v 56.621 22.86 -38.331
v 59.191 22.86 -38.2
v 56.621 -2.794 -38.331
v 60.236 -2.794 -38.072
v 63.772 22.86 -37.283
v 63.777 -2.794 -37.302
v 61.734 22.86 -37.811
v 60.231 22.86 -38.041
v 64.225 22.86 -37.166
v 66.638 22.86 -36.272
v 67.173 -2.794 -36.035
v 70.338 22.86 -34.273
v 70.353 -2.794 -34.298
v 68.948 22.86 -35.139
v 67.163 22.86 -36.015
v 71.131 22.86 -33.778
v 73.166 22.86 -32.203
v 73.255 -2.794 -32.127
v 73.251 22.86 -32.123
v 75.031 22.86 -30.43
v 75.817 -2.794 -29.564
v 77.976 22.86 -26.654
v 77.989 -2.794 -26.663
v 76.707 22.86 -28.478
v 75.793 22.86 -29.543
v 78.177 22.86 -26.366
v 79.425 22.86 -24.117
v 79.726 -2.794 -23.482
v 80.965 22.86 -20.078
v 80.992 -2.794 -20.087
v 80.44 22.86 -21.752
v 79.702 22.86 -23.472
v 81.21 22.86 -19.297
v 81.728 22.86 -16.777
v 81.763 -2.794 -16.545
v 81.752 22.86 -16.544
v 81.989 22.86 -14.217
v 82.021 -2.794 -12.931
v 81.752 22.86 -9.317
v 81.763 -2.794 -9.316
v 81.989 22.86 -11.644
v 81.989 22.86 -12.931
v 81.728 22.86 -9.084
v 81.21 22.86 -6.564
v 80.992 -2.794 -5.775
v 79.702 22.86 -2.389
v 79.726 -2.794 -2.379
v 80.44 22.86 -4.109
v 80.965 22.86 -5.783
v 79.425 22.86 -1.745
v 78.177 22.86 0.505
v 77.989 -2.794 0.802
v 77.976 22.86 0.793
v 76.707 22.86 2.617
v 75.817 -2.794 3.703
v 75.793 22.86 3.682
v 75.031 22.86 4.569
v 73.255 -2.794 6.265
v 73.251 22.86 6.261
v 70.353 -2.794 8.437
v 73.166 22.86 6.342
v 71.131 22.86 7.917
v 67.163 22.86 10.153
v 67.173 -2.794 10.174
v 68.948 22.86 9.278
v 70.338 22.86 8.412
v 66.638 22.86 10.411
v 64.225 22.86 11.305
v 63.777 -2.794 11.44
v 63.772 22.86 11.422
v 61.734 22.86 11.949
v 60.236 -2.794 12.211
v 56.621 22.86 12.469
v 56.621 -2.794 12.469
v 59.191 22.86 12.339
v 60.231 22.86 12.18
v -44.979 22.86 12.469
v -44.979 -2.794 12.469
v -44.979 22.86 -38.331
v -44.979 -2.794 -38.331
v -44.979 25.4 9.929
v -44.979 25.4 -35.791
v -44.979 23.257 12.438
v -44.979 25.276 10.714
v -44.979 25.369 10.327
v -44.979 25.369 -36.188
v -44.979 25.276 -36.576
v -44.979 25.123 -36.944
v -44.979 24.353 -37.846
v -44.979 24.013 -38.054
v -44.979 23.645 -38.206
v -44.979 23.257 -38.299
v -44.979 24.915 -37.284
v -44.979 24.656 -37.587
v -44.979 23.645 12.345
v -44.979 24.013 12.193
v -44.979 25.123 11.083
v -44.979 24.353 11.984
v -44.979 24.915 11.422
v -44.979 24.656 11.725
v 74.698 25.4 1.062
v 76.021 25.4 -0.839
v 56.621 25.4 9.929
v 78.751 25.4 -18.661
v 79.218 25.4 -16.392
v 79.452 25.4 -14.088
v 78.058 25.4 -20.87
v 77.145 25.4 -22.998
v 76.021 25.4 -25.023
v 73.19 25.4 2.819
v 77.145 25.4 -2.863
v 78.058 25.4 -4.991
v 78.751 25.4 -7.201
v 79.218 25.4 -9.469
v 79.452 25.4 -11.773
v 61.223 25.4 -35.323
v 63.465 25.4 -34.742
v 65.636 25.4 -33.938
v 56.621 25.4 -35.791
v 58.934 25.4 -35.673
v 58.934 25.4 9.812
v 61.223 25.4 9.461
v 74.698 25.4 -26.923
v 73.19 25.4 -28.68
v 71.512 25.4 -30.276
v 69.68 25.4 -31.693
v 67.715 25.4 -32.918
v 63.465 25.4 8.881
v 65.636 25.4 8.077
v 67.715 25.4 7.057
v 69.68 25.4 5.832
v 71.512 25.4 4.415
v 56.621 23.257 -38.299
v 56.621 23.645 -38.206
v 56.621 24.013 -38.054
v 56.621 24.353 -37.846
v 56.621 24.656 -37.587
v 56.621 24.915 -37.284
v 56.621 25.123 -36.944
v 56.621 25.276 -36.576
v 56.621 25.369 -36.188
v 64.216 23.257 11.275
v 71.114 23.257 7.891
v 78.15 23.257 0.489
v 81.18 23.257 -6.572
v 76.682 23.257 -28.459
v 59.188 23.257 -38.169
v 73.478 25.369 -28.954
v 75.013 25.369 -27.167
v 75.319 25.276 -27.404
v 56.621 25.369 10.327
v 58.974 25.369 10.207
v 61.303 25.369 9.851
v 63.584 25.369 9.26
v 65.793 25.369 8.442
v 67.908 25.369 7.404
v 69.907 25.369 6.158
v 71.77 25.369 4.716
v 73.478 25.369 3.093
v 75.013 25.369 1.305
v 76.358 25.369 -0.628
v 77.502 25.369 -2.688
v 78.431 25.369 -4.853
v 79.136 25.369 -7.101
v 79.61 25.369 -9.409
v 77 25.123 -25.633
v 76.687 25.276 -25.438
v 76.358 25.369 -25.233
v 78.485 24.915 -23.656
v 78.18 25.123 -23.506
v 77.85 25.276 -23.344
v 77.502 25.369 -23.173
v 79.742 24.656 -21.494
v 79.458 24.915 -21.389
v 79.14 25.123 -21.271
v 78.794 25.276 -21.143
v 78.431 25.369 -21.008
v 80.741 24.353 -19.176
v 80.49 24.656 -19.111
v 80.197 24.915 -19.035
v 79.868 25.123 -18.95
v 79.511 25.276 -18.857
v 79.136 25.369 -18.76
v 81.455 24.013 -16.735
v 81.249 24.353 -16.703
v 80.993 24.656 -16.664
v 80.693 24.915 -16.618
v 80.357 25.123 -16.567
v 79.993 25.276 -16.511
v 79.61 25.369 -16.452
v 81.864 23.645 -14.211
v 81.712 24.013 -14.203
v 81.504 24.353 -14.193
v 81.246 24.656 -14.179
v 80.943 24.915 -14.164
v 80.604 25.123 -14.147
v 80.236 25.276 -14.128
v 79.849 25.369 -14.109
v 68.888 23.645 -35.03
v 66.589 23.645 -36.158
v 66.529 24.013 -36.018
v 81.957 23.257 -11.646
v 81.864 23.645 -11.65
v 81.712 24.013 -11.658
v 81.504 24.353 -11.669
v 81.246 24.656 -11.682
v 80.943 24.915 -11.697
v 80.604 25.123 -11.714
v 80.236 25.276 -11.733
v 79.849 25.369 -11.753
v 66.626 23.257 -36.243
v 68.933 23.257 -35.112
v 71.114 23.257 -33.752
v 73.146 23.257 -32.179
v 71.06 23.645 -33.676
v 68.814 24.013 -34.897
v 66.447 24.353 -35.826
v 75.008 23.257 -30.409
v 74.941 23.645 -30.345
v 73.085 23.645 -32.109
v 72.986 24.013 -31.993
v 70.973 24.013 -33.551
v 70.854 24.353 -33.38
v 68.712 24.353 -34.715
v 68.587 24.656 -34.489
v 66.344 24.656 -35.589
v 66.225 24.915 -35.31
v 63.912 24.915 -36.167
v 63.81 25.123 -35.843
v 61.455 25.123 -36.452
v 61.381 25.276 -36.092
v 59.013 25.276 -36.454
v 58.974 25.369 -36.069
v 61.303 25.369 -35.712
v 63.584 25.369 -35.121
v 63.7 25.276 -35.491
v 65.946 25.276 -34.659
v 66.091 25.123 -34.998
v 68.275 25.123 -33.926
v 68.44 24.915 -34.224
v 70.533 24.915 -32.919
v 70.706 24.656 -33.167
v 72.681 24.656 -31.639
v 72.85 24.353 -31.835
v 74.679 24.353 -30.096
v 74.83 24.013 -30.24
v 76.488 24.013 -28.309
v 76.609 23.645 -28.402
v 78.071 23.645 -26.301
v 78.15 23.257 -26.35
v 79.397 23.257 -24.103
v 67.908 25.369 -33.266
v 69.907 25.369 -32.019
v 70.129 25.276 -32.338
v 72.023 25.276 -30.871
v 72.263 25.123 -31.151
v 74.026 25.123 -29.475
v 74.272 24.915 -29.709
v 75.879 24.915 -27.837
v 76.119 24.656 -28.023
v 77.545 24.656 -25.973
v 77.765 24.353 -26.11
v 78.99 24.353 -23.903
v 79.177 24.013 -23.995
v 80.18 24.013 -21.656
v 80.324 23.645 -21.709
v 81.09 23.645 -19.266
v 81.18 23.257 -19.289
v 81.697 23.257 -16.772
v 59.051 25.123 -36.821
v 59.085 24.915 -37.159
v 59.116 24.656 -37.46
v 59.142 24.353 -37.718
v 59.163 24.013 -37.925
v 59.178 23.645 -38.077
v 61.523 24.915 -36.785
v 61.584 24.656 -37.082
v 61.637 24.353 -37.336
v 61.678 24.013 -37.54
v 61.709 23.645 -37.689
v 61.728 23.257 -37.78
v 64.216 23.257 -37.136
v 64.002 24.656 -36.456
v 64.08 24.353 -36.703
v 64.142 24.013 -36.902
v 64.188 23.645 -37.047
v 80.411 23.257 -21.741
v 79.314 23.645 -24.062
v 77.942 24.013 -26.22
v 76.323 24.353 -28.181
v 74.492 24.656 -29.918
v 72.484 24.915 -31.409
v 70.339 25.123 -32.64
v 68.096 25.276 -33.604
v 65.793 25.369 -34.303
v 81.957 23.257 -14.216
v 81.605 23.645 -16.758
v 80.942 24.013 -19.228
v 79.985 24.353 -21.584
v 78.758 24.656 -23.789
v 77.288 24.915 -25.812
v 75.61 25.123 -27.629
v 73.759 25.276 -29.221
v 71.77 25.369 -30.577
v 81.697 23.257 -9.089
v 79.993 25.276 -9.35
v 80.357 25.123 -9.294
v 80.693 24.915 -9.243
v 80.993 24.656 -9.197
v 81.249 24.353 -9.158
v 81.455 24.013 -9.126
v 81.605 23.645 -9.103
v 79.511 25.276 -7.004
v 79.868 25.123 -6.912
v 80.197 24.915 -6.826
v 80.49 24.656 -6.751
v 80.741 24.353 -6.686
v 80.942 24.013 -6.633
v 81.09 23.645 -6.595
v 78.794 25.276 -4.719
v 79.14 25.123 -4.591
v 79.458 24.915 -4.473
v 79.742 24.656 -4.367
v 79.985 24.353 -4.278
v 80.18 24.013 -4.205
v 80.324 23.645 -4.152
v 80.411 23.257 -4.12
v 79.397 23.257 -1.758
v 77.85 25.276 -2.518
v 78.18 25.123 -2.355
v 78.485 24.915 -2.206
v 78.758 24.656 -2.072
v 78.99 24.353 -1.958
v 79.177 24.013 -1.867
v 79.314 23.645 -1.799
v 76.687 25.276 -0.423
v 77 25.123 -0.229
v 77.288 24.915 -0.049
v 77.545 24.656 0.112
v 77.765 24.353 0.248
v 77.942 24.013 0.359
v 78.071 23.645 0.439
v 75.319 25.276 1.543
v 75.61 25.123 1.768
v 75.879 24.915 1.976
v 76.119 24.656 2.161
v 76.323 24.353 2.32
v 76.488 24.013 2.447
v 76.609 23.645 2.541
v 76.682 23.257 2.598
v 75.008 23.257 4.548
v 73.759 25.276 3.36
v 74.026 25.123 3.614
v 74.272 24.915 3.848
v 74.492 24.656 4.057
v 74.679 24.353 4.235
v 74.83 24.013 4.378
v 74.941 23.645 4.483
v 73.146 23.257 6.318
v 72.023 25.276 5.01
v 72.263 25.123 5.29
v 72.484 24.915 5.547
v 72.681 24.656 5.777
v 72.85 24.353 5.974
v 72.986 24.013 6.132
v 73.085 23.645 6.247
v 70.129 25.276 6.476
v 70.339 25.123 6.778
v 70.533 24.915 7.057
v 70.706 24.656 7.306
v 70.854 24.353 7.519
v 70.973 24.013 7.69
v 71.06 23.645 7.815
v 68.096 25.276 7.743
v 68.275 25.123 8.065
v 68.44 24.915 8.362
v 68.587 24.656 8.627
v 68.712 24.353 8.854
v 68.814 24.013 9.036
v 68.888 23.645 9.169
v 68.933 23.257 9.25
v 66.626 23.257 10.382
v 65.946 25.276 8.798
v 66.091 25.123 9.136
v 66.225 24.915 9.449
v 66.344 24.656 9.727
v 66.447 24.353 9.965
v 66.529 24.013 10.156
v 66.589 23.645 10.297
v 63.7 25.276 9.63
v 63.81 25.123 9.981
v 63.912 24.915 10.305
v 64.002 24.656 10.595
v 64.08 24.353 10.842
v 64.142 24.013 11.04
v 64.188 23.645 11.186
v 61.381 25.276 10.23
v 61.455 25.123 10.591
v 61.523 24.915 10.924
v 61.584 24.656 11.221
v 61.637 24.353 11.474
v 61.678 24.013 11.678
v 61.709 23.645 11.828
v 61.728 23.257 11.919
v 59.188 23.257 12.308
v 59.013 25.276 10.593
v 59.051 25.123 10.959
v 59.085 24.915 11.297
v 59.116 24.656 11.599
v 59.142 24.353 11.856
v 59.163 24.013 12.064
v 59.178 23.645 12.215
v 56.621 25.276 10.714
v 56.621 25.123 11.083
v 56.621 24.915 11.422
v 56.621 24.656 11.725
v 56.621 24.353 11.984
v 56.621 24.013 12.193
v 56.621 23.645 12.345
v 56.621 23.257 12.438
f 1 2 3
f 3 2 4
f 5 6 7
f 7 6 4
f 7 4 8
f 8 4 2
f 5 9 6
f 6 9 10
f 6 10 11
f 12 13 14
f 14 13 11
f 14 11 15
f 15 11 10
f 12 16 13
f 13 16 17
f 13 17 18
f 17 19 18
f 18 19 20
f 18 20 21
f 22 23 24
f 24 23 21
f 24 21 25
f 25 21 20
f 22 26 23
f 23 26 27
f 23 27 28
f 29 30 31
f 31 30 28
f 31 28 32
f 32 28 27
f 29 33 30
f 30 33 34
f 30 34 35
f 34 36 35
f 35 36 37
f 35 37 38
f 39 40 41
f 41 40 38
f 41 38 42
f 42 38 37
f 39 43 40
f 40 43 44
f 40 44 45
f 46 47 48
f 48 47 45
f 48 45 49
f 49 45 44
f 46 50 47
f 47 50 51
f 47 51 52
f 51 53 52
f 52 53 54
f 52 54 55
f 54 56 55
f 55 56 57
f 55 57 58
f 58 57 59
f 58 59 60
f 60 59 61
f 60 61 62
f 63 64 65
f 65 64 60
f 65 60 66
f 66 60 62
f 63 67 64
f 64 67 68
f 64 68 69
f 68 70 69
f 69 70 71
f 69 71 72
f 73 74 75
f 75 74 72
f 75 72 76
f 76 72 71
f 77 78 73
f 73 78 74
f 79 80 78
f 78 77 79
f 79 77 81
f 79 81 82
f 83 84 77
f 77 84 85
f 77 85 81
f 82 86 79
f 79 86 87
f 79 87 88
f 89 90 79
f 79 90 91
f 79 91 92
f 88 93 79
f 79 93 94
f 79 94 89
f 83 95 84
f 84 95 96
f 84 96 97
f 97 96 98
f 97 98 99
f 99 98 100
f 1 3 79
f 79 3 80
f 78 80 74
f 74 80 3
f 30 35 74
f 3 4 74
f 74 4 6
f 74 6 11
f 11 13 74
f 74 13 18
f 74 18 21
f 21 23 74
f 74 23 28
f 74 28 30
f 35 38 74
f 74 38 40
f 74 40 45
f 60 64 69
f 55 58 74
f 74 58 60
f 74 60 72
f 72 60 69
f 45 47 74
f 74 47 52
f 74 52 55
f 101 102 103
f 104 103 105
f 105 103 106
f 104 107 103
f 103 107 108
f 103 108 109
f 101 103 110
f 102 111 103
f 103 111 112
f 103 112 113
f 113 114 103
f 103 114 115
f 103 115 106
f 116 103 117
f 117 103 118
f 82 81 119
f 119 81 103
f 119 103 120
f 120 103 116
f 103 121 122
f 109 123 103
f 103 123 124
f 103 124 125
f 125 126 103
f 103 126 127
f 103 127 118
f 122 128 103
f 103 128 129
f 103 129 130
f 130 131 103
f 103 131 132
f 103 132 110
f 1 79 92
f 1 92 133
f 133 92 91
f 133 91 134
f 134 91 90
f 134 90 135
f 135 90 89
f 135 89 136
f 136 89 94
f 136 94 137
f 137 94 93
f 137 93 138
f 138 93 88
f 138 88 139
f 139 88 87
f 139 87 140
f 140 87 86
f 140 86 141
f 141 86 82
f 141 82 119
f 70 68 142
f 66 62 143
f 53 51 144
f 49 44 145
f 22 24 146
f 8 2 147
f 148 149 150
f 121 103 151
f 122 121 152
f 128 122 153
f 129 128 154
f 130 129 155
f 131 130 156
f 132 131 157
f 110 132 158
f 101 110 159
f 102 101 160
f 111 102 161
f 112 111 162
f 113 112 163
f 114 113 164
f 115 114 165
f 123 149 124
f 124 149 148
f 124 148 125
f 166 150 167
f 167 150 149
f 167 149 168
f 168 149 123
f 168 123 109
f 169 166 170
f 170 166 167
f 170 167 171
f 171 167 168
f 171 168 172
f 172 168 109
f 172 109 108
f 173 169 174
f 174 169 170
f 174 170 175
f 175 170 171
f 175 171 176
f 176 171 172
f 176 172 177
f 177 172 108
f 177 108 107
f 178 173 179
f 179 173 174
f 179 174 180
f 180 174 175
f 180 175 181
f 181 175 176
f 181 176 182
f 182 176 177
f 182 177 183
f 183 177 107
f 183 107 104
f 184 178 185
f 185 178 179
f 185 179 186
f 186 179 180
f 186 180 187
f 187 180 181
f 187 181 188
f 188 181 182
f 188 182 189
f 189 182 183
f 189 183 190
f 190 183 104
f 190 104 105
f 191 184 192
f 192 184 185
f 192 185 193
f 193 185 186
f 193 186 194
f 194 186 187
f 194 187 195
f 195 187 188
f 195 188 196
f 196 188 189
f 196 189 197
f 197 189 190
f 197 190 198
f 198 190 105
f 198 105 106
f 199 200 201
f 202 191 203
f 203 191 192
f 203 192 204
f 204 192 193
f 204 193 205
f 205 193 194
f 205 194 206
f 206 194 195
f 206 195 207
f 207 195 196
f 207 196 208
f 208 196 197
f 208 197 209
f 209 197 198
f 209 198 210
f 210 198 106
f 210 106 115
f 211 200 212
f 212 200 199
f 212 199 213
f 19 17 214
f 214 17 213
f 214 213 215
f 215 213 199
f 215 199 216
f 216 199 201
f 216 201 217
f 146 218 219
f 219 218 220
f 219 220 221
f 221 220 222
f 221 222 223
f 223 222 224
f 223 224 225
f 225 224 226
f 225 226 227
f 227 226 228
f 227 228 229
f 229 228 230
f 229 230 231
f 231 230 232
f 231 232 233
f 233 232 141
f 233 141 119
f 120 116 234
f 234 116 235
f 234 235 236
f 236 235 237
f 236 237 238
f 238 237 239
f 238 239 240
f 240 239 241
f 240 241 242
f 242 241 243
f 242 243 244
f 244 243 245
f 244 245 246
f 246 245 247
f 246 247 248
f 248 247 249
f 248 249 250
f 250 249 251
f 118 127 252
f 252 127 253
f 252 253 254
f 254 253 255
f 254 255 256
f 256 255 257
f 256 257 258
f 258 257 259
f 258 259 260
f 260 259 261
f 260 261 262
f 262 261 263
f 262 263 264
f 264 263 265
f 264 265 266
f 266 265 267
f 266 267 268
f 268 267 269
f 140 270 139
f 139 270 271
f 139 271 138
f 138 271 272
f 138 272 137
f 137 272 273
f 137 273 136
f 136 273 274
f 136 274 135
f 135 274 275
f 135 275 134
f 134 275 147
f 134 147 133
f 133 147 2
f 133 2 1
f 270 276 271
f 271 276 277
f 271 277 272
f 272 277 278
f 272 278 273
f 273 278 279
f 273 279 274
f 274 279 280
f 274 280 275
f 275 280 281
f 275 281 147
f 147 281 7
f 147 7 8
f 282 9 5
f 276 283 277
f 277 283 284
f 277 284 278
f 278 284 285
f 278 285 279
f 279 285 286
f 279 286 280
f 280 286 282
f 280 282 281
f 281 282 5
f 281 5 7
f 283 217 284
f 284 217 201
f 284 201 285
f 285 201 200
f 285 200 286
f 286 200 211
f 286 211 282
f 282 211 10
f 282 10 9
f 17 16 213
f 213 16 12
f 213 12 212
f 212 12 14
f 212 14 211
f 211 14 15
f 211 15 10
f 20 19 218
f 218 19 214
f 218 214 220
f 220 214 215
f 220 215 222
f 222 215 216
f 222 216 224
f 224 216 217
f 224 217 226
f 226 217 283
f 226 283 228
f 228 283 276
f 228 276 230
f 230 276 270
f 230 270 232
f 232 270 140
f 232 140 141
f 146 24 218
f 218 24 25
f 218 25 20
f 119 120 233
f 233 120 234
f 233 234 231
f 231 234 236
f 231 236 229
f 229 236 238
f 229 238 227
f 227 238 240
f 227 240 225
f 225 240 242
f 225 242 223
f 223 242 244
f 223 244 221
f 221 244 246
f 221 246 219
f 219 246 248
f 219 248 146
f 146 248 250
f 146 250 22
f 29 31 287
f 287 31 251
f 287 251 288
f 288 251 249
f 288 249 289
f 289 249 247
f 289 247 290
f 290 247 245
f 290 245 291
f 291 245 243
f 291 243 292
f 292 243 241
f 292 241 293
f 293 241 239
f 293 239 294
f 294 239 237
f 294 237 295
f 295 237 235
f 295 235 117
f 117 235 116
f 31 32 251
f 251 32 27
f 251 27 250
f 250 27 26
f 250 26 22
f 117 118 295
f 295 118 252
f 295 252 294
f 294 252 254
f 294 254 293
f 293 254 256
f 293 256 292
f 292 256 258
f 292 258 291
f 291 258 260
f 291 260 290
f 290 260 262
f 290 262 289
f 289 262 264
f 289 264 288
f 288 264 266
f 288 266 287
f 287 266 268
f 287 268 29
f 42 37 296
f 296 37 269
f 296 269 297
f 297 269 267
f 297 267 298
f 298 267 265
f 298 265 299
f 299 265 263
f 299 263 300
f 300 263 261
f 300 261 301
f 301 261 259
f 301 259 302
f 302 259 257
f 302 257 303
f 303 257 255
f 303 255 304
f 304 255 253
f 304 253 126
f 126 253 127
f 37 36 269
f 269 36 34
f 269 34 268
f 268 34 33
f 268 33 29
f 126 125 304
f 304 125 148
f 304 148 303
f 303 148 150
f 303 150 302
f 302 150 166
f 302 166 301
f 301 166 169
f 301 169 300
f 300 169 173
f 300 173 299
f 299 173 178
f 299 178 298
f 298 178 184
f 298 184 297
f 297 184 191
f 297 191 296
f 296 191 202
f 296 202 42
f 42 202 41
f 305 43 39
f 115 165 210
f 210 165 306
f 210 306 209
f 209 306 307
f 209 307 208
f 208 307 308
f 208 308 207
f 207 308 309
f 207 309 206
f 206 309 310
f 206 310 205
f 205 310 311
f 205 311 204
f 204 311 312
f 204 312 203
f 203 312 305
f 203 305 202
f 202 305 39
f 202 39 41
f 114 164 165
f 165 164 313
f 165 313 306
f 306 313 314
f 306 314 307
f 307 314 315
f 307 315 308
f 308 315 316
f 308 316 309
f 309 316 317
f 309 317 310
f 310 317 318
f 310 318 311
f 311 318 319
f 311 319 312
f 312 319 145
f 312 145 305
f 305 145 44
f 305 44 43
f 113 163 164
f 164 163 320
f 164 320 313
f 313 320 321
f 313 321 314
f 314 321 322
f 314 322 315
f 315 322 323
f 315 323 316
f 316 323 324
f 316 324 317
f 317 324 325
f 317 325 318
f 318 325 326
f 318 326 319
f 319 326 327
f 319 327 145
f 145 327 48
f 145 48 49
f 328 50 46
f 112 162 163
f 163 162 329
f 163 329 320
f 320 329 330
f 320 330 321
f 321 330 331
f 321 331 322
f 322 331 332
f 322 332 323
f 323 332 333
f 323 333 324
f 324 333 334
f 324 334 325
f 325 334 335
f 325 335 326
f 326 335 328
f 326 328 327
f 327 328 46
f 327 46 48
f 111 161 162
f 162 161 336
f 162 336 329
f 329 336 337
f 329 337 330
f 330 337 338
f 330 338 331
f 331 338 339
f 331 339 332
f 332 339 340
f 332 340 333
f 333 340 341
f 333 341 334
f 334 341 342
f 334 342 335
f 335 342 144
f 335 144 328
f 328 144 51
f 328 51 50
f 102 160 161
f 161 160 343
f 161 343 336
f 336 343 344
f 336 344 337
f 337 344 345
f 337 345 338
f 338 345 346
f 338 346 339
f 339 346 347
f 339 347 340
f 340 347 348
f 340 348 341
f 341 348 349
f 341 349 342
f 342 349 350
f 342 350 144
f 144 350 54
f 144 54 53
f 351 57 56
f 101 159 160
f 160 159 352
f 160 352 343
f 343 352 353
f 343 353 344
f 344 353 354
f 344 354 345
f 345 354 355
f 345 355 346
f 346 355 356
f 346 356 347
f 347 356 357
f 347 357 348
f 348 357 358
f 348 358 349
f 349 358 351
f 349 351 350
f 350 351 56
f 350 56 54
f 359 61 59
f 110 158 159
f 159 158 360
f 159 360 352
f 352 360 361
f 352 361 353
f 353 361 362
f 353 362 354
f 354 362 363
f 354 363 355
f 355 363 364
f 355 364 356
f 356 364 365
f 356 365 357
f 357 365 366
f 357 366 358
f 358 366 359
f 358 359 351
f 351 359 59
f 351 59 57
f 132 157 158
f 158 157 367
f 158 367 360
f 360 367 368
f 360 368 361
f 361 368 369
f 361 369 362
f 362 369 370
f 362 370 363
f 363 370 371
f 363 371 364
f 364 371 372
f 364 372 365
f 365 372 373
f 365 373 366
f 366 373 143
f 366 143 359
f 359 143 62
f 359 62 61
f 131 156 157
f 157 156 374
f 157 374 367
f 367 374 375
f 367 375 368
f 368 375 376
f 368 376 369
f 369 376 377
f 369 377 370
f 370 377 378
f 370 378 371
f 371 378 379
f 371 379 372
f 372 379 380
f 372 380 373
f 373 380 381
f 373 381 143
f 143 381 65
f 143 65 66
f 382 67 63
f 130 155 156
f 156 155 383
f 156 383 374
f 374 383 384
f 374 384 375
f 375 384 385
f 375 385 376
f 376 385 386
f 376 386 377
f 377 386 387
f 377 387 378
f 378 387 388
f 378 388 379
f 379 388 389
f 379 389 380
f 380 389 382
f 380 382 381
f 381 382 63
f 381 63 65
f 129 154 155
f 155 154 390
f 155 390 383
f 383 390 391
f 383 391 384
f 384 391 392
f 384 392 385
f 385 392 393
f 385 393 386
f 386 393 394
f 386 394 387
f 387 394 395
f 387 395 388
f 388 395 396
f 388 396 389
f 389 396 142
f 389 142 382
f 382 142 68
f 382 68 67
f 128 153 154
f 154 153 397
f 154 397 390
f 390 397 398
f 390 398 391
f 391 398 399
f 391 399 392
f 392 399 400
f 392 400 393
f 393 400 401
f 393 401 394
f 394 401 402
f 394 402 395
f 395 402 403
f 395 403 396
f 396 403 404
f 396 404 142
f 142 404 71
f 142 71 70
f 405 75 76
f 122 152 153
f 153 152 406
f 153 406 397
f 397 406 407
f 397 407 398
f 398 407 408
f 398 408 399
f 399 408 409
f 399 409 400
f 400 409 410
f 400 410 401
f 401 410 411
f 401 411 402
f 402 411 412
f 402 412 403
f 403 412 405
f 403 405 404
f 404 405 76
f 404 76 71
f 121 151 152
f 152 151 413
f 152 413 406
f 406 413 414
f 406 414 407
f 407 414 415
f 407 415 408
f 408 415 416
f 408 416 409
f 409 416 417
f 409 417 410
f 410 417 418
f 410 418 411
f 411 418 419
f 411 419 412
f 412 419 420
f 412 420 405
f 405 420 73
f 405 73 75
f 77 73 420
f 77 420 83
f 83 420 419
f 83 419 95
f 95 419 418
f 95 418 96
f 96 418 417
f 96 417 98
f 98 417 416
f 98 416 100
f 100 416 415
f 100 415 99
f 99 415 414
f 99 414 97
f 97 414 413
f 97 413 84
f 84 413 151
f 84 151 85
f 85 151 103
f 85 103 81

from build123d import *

# Parameters (mm, degrees)
BOSS_EXTRUDE2_DEPTH      = 25.4
BOSS_EXTRUDE2_DEPTH_BACK = 2.794
FILLET1_R                = 2.54


with BuildPart() as part:
    # Sketch1 → Boss-Extrude2 (new, two sides: drawn at the far end of the back side and taken through both)
    with BuildSketch(Plane(origin=(0, 0, 0), x_dir=(1, 0, 0), z_dir=(0, 1, 0)).offset(-BOSS_EXTRUDE2_DEPTH_BACK)):
        with BuildLine():
            Line((56.621204677, 38.330630999), (-44.978795323, 38.330630999))
            Line((-44.978795323, 38.330630999), (-44.978795323, -12.469369001))
            Line((-44.978795323, -12.469369001), (56.621204677, -12.469369001))
            ThreePointArc((56.621204677, -12.469369001), (82.021204677, 12.930630999), (56.621204677, 38.330630999))
        make_face()
    extrude(amount=BOSS_EXTRUDE2_DEPTH + BOSS_EXTRUDE2_DEPTH_BACK)

    # Fillet1
    fillet1_edges = [part.edges().sort_by_distance(p)[0] for p in [
        (5.821204677, 25.4, 12.469369001),
        (82.021204677, 25.4, -12.930630999),
        (5.821204677, 25.4, -38.330630999),
    ]]
    fillet(fillet1_edges, radius=FILLET1_R)


solid = part.part
